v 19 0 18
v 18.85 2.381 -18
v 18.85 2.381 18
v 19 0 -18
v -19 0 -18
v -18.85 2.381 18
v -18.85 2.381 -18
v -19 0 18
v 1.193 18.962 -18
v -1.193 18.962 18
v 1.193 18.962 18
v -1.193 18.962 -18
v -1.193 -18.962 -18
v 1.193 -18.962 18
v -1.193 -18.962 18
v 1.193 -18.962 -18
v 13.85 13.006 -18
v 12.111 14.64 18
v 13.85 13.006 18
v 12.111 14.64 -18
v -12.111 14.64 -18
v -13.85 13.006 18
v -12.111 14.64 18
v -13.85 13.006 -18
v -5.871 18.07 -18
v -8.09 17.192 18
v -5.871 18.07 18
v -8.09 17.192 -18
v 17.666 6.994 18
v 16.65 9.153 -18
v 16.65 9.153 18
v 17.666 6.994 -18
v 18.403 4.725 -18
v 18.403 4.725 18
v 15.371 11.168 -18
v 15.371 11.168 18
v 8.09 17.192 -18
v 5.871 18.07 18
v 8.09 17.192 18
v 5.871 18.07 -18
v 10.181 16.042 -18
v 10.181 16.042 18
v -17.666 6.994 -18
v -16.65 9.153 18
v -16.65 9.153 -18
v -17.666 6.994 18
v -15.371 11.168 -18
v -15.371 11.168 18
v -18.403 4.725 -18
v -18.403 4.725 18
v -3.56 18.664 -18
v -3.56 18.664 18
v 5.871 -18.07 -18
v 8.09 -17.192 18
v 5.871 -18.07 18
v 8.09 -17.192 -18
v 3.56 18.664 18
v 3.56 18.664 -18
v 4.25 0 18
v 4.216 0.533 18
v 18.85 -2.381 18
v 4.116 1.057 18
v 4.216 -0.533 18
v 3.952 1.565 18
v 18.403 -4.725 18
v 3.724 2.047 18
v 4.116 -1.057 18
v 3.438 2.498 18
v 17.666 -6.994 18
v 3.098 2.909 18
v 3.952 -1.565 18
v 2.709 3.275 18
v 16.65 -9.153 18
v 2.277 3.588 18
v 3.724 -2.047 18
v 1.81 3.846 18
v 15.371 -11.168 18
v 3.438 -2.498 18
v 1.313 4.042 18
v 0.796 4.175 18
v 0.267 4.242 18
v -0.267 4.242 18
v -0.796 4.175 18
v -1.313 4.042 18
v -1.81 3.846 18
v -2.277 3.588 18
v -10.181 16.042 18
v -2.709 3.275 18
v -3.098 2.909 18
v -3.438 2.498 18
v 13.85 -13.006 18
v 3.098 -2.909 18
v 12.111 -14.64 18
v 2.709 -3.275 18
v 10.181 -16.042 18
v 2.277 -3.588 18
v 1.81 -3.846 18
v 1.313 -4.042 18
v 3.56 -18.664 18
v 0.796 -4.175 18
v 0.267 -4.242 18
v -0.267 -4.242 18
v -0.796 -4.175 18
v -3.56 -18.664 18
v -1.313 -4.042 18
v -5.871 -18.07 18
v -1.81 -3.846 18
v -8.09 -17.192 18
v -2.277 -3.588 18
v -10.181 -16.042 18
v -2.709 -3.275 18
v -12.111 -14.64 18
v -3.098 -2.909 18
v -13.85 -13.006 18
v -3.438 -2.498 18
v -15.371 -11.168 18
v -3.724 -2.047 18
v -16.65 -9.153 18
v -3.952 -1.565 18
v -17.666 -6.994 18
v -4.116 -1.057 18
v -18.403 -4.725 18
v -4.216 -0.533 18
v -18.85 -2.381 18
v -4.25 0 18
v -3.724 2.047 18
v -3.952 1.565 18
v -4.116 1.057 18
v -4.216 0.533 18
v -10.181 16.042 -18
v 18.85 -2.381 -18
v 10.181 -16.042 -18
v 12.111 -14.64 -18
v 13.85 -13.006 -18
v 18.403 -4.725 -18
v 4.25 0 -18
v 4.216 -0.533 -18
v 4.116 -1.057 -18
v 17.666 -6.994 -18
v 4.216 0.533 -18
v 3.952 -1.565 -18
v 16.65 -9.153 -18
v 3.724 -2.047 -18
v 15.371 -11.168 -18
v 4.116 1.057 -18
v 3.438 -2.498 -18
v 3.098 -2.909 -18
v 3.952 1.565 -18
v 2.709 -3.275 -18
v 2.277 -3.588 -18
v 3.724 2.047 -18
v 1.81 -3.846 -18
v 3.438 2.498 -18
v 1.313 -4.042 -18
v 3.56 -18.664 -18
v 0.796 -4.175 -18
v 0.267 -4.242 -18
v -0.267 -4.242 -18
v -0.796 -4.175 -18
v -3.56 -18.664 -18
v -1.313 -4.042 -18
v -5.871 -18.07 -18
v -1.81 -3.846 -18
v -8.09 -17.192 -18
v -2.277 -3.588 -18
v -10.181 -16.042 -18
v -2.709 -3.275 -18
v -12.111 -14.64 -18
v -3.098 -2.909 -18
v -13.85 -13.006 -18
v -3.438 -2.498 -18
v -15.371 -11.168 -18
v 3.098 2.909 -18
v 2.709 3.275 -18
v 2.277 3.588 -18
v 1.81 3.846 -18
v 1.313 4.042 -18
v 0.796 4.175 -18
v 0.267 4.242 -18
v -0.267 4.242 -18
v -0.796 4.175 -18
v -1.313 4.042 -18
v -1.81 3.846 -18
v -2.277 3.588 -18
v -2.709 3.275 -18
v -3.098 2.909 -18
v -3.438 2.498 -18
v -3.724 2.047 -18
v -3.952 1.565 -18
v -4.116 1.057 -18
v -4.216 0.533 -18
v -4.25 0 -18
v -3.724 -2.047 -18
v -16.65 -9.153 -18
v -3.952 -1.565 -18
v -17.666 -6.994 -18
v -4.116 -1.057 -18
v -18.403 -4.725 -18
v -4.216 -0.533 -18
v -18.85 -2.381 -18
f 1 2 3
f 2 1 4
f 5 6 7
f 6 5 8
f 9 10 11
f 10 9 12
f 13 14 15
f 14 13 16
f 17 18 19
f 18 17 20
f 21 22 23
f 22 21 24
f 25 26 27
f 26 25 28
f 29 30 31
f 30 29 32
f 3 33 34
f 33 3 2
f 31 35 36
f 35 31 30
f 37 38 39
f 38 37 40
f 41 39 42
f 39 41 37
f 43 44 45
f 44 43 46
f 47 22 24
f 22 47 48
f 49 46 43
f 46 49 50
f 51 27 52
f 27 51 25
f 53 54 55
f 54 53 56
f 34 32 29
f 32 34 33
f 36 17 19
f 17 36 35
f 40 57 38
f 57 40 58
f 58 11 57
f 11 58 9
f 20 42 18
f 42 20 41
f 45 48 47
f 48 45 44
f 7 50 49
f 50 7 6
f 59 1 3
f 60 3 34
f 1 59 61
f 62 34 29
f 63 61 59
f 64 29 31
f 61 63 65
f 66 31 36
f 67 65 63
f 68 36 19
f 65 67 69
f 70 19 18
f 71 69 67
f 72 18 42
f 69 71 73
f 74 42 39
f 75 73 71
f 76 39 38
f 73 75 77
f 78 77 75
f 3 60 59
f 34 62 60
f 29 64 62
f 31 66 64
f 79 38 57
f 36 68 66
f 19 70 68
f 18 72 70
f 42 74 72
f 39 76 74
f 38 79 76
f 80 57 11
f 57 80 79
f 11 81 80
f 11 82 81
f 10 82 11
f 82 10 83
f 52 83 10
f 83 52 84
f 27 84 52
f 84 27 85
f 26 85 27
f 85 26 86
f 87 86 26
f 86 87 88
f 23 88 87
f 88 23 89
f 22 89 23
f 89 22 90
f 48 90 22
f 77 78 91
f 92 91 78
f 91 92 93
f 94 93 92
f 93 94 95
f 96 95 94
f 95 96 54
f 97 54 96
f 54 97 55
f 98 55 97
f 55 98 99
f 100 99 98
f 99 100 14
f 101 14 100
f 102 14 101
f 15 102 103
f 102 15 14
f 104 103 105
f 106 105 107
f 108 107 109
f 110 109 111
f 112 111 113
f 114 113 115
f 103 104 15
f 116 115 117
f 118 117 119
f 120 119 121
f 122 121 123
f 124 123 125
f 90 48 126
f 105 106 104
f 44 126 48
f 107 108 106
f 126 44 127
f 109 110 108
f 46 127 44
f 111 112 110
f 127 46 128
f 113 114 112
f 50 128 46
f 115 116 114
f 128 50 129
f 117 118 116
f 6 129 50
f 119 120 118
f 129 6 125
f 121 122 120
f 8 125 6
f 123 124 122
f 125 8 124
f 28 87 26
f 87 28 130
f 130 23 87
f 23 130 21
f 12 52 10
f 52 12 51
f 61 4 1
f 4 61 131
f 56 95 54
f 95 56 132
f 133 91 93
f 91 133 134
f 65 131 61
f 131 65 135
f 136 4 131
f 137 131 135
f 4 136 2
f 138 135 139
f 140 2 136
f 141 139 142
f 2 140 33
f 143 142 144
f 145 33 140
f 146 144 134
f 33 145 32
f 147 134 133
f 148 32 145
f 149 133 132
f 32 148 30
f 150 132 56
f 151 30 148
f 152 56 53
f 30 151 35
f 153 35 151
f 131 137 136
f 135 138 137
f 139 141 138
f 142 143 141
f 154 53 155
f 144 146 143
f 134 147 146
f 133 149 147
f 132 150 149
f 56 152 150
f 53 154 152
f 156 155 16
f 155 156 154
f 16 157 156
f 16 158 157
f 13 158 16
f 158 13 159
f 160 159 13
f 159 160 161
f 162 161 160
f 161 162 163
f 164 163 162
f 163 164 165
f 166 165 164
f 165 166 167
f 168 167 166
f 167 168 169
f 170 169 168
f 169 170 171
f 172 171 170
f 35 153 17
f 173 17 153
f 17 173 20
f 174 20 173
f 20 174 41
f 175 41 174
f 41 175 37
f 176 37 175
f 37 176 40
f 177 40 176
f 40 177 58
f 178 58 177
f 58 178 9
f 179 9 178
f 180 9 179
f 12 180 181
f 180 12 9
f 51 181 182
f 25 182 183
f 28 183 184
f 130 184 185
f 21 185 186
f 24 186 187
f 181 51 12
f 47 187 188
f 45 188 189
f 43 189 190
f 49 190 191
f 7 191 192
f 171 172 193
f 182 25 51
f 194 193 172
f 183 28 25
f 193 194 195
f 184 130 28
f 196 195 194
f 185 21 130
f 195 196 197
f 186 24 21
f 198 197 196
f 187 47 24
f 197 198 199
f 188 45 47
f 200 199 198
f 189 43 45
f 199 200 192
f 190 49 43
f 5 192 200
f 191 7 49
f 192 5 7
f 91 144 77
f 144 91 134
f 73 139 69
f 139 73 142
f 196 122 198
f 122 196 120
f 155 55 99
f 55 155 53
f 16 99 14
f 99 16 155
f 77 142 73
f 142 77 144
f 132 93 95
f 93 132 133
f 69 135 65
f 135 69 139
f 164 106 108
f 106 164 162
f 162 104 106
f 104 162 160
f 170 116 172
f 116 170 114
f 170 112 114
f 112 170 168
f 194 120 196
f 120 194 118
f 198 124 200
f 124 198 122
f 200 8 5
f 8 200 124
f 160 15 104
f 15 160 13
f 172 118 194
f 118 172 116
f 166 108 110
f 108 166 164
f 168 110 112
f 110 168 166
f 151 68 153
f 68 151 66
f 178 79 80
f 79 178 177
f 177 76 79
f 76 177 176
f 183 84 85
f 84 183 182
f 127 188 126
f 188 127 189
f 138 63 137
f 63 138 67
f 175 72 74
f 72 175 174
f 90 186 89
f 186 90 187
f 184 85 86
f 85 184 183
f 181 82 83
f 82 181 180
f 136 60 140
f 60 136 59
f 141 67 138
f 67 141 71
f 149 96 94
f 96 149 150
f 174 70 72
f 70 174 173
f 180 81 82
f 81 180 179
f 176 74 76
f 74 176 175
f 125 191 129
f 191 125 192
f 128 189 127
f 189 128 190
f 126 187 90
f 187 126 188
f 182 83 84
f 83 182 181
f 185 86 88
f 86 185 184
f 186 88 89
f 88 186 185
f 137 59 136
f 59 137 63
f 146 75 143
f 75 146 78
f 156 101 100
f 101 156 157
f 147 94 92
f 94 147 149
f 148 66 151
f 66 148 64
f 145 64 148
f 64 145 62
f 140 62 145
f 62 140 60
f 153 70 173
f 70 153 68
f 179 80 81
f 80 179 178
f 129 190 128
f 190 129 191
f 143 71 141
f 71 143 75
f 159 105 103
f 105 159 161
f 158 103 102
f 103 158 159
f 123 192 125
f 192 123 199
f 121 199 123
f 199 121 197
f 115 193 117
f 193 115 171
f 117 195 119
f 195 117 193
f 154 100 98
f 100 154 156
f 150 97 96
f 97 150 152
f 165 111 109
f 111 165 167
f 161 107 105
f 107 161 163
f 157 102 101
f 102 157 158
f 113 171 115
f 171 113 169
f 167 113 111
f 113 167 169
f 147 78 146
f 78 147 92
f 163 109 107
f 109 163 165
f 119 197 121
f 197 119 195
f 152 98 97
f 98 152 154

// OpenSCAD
$fn = 50;


difference() {
	union() {
		translate(v = [0, 0, -18.0000000000]) {
			cylinder(h = 36, r = 19.0000000000);
		}
	}
	union() {
		translate(v = [0, 0, -100.0000000000]) {
			cylinder(h = 200, r = 4.2500000000);
		}
	}
}
